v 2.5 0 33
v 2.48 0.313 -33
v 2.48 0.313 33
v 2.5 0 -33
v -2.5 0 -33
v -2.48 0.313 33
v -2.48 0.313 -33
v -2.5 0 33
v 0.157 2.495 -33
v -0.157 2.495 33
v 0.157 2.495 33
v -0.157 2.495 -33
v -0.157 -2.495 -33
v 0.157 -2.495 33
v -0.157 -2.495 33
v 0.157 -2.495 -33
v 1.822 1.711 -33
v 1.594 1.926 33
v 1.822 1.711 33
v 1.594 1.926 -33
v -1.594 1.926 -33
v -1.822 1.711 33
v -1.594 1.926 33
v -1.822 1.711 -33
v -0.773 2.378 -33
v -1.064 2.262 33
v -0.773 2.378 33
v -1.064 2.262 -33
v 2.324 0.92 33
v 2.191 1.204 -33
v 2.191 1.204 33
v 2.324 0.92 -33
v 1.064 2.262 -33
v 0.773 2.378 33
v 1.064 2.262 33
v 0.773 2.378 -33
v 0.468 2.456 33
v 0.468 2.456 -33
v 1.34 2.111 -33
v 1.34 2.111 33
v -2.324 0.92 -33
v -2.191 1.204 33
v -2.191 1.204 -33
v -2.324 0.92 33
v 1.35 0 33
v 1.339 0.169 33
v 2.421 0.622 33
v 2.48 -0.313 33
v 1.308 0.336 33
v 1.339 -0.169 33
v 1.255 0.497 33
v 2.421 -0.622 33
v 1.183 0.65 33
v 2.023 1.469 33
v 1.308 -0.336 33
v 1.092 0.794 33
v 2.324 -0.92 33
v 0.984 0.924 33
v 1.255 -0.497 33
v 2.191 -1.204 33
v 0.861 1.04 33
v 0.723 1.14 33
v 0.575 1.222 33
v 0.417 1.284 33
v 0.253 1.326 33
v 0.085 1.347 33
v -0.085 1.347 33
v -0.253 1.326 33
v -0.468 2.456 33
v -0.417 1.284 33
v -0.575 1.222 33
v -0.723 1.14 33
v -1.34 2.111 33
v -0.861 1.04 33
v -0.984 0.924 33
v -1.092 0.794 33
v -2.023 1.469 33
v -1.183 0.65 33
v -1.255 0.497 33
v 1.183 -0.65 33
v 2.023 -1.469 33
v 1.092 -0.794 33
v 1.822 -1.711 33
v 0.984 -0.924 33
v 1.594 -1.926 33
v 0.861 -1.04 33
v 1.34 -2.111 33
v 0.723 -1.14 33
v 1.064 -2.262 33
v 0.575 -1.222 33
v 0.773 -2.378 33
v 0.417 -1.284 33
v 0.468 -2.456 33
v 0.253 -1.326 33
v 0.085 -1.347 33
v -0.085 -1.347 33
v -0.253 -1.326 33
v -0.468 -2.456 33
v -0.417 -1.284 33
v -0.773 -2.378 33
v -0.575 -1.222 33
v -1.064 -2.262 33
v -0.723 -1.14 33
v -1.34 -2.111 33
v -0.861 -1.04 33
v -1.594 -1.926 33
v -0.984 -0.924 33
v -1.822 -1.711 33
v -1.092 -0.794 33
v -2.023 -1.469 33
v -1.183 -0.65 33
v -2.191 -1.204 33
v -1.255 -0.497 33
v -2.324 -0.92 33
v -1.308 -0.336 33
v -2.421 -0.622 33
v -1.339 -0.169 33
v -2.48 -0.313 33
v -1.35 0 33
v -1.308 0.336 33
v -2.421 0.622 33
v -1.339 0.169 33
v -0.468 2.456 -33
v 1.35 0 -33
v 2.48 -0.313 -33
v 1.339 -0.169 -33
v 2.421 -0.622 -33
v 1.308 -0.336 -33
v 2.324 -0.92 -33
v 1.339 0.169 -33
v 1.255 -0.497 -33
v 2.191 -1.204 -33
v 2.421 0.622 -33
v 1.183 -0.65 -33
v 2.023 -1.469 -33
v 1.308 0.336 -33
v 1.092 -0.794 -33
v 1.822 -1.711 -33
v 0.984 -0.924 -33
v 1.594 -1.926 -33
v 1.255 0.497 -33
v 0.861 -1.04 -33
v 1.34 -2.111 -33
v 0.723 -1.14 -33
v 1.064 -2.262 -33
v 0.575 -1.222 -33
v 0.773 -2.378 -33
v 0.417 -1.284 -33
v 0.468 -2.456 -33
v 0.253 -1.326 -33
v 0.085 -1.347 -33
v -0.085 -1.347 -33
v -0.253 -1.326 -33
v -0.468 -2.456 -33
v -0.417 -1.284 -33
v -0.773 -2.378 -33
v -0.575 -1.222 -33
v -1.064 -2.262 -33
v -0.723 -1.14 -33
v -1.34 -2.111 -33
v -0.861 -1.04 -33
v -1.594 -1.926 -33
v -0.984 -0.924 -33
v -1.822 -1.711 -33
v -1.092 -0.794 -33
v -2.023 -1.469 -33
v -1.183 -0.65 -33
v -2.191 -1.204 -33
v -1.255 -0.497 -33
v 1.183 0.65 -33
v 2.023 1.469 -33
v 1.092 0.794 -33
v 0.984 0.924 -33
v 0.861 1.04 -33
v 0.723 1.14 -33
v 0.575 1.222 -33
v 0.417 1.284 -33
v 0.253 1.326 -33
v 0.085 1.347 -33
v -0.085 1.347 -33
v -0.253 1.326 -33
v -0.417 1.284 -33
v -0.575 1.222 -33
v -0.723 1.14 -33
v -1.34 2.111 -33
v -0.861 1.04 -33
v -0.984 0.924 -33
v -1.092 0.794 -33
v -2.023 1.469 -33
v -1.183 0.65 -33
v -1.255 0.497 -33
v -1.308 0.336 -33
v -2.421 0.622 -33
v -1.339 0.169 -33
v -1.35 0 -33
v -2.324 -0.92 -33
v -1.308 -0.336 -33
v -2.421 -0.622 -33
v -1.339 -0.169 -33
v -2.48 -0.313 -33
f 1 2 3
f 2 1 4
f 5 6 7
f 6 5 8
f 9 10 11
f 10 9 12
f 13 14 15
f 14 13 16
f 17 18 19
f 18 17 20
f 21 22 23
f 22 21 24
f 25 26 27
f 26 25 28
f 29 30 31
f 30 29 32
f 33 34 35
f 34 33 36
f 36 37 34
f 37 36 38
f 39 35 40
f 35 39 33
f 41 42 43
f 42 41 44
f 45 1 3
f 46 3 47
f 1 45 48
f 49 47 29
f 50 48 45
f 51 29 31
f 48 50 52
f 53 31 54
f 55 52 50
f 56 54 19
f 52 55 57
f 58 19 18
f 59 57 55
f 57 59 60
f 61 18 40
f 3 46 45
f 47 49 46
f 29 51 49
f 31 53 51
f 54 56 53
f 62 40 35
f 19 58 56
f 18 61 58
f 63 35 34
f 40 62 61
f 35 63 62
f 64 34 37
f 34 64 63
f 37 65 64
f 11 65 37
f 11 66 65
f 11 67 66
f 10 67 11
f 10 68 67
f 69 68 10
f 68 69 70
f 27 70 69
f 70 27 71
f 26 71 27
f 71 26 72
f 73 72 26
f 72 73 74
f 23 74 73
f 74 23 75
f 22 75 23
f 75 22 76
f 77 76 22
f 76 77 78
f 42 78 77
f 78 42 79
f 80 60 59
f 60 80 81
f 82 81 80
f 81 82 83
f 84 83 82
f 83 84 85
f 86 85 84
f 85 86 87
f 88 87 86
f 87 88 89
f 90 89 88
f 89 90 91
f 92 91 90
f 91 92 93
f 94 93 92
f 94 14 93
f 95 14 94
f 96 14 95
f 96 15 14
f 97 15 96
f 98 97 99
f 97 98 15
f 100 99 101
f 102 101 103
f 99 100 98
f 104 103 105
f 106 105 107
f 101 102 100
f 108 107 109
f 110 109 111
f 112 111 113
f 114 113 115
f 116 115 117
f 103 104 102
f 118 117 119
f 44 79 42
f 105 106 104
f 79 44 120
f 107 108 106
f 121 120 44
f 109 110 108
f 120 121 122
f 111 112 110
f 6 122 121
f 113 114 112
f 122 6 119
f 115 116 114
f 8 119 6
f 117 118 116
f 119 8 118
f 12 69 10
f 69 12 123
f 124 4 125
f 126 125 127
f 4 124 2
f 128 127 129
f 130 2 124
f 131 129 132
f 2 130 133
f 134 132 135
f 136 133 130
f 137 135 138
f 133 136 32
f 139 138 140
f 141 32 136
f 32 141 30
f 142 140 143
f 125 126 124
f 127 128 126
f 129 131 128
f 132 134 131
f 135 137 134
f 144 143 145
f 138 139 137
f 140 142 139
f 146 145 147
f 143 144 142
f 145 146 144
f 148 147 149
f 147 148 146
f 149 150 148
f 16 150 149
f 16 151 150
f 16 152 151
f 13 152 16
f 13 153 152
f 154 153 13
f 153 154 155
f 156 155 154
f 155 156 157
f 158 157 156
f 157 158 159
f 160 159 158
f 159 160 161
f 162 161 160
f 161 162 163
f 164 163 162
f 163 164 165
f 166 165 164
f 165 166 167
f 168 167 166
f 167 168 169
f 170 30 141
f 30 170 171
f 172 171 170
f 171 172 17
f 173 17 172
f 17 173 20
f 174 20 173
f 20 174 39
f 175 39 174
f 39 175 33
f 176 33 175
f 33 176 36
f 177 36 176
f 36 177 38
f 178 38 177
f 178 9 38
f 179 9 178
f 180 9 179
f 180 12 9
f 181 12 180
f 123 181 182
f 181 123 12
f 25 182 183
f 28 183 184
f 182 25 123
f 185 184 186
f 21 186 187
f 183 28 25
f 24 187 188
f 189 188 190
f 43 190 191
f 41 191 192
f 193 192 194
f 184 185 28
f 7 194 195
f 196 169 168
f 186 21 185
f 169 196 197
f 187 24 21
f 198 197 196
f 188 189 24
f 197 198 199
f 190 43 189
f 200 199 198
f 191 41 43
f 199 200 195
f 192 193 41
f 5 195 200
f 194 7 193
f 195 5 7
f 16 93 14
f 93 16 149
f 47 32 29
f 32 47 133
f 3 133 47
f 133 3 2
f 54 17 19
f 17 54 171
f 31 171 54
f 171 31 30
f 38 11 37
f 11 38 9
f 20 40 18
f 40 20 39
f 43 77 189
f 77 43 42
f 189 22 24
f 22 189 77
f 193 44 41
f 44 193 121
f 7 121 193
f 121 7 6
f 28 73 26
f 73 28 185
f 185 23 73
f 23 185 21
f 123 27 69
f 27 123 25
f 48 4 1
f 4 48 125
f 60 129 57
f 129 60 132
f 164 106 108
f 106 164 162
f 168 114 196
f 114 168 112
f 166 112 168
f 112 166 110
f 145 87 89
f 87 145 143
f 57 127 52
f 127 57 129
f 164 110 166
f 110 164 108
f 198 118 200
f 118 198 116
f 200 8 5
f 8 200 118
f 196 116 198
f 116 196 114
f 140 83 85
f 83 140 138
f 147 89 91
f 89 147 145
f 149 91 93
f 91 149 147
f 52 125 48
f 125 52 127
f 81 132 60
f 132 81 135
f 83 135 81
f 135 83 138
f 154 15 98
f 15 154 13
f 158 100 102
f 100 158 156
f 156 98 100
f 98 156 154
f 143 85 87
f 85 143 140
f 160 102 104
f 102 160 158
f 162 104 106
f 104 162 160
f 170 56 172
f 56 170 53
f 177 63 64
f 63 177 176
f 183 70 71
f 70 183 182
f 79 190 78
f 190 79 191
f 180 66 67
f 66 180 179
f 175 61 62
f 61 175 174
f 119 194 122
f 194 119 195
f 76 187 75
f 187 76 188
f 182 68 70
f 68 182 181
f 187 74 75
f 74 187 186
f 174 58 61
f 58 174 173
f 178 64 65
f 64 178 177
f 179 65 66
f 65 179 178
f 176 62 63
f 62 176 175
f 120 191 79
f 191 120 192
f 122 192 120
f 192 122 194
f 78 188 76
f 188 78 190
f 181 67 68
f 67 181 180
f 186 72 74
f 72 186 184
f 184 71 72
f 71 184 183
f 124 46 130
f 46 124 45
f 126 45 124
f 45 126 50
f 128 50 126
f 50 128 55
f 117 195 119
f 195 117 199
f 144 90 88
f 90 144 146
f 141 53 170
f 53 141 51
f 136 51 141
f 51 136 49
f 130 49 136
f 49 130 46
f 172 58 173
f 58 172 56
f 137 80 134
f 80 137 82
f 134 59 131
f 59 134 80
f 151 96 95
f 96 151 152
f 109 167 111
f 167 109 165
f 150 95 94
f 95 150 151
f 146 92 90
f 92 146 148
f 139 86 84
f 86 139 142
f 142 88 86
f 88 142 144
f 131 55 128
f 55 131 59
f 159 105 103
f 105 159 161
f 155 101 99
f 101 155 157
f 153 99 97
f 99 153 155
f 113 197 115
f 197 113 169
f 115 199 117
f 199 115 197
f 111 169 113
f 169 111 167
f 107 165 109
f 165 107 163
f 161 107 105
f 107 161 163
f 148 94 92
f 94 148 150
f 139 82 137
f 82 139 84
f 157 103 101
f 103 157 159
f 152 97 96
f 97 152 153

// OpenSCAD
$fn = 50;


difference() {
	union() {
		translate(v = [0, 0, -33.0000000000]) {
			cylinder(h = 66, r = 2.5000000000);
		}
	}
	union() {
		translate(v = [0, 0, -100.0000000000]) {
			cylinder(h = 200, r = 1.3500000000);
		}
	}
}
